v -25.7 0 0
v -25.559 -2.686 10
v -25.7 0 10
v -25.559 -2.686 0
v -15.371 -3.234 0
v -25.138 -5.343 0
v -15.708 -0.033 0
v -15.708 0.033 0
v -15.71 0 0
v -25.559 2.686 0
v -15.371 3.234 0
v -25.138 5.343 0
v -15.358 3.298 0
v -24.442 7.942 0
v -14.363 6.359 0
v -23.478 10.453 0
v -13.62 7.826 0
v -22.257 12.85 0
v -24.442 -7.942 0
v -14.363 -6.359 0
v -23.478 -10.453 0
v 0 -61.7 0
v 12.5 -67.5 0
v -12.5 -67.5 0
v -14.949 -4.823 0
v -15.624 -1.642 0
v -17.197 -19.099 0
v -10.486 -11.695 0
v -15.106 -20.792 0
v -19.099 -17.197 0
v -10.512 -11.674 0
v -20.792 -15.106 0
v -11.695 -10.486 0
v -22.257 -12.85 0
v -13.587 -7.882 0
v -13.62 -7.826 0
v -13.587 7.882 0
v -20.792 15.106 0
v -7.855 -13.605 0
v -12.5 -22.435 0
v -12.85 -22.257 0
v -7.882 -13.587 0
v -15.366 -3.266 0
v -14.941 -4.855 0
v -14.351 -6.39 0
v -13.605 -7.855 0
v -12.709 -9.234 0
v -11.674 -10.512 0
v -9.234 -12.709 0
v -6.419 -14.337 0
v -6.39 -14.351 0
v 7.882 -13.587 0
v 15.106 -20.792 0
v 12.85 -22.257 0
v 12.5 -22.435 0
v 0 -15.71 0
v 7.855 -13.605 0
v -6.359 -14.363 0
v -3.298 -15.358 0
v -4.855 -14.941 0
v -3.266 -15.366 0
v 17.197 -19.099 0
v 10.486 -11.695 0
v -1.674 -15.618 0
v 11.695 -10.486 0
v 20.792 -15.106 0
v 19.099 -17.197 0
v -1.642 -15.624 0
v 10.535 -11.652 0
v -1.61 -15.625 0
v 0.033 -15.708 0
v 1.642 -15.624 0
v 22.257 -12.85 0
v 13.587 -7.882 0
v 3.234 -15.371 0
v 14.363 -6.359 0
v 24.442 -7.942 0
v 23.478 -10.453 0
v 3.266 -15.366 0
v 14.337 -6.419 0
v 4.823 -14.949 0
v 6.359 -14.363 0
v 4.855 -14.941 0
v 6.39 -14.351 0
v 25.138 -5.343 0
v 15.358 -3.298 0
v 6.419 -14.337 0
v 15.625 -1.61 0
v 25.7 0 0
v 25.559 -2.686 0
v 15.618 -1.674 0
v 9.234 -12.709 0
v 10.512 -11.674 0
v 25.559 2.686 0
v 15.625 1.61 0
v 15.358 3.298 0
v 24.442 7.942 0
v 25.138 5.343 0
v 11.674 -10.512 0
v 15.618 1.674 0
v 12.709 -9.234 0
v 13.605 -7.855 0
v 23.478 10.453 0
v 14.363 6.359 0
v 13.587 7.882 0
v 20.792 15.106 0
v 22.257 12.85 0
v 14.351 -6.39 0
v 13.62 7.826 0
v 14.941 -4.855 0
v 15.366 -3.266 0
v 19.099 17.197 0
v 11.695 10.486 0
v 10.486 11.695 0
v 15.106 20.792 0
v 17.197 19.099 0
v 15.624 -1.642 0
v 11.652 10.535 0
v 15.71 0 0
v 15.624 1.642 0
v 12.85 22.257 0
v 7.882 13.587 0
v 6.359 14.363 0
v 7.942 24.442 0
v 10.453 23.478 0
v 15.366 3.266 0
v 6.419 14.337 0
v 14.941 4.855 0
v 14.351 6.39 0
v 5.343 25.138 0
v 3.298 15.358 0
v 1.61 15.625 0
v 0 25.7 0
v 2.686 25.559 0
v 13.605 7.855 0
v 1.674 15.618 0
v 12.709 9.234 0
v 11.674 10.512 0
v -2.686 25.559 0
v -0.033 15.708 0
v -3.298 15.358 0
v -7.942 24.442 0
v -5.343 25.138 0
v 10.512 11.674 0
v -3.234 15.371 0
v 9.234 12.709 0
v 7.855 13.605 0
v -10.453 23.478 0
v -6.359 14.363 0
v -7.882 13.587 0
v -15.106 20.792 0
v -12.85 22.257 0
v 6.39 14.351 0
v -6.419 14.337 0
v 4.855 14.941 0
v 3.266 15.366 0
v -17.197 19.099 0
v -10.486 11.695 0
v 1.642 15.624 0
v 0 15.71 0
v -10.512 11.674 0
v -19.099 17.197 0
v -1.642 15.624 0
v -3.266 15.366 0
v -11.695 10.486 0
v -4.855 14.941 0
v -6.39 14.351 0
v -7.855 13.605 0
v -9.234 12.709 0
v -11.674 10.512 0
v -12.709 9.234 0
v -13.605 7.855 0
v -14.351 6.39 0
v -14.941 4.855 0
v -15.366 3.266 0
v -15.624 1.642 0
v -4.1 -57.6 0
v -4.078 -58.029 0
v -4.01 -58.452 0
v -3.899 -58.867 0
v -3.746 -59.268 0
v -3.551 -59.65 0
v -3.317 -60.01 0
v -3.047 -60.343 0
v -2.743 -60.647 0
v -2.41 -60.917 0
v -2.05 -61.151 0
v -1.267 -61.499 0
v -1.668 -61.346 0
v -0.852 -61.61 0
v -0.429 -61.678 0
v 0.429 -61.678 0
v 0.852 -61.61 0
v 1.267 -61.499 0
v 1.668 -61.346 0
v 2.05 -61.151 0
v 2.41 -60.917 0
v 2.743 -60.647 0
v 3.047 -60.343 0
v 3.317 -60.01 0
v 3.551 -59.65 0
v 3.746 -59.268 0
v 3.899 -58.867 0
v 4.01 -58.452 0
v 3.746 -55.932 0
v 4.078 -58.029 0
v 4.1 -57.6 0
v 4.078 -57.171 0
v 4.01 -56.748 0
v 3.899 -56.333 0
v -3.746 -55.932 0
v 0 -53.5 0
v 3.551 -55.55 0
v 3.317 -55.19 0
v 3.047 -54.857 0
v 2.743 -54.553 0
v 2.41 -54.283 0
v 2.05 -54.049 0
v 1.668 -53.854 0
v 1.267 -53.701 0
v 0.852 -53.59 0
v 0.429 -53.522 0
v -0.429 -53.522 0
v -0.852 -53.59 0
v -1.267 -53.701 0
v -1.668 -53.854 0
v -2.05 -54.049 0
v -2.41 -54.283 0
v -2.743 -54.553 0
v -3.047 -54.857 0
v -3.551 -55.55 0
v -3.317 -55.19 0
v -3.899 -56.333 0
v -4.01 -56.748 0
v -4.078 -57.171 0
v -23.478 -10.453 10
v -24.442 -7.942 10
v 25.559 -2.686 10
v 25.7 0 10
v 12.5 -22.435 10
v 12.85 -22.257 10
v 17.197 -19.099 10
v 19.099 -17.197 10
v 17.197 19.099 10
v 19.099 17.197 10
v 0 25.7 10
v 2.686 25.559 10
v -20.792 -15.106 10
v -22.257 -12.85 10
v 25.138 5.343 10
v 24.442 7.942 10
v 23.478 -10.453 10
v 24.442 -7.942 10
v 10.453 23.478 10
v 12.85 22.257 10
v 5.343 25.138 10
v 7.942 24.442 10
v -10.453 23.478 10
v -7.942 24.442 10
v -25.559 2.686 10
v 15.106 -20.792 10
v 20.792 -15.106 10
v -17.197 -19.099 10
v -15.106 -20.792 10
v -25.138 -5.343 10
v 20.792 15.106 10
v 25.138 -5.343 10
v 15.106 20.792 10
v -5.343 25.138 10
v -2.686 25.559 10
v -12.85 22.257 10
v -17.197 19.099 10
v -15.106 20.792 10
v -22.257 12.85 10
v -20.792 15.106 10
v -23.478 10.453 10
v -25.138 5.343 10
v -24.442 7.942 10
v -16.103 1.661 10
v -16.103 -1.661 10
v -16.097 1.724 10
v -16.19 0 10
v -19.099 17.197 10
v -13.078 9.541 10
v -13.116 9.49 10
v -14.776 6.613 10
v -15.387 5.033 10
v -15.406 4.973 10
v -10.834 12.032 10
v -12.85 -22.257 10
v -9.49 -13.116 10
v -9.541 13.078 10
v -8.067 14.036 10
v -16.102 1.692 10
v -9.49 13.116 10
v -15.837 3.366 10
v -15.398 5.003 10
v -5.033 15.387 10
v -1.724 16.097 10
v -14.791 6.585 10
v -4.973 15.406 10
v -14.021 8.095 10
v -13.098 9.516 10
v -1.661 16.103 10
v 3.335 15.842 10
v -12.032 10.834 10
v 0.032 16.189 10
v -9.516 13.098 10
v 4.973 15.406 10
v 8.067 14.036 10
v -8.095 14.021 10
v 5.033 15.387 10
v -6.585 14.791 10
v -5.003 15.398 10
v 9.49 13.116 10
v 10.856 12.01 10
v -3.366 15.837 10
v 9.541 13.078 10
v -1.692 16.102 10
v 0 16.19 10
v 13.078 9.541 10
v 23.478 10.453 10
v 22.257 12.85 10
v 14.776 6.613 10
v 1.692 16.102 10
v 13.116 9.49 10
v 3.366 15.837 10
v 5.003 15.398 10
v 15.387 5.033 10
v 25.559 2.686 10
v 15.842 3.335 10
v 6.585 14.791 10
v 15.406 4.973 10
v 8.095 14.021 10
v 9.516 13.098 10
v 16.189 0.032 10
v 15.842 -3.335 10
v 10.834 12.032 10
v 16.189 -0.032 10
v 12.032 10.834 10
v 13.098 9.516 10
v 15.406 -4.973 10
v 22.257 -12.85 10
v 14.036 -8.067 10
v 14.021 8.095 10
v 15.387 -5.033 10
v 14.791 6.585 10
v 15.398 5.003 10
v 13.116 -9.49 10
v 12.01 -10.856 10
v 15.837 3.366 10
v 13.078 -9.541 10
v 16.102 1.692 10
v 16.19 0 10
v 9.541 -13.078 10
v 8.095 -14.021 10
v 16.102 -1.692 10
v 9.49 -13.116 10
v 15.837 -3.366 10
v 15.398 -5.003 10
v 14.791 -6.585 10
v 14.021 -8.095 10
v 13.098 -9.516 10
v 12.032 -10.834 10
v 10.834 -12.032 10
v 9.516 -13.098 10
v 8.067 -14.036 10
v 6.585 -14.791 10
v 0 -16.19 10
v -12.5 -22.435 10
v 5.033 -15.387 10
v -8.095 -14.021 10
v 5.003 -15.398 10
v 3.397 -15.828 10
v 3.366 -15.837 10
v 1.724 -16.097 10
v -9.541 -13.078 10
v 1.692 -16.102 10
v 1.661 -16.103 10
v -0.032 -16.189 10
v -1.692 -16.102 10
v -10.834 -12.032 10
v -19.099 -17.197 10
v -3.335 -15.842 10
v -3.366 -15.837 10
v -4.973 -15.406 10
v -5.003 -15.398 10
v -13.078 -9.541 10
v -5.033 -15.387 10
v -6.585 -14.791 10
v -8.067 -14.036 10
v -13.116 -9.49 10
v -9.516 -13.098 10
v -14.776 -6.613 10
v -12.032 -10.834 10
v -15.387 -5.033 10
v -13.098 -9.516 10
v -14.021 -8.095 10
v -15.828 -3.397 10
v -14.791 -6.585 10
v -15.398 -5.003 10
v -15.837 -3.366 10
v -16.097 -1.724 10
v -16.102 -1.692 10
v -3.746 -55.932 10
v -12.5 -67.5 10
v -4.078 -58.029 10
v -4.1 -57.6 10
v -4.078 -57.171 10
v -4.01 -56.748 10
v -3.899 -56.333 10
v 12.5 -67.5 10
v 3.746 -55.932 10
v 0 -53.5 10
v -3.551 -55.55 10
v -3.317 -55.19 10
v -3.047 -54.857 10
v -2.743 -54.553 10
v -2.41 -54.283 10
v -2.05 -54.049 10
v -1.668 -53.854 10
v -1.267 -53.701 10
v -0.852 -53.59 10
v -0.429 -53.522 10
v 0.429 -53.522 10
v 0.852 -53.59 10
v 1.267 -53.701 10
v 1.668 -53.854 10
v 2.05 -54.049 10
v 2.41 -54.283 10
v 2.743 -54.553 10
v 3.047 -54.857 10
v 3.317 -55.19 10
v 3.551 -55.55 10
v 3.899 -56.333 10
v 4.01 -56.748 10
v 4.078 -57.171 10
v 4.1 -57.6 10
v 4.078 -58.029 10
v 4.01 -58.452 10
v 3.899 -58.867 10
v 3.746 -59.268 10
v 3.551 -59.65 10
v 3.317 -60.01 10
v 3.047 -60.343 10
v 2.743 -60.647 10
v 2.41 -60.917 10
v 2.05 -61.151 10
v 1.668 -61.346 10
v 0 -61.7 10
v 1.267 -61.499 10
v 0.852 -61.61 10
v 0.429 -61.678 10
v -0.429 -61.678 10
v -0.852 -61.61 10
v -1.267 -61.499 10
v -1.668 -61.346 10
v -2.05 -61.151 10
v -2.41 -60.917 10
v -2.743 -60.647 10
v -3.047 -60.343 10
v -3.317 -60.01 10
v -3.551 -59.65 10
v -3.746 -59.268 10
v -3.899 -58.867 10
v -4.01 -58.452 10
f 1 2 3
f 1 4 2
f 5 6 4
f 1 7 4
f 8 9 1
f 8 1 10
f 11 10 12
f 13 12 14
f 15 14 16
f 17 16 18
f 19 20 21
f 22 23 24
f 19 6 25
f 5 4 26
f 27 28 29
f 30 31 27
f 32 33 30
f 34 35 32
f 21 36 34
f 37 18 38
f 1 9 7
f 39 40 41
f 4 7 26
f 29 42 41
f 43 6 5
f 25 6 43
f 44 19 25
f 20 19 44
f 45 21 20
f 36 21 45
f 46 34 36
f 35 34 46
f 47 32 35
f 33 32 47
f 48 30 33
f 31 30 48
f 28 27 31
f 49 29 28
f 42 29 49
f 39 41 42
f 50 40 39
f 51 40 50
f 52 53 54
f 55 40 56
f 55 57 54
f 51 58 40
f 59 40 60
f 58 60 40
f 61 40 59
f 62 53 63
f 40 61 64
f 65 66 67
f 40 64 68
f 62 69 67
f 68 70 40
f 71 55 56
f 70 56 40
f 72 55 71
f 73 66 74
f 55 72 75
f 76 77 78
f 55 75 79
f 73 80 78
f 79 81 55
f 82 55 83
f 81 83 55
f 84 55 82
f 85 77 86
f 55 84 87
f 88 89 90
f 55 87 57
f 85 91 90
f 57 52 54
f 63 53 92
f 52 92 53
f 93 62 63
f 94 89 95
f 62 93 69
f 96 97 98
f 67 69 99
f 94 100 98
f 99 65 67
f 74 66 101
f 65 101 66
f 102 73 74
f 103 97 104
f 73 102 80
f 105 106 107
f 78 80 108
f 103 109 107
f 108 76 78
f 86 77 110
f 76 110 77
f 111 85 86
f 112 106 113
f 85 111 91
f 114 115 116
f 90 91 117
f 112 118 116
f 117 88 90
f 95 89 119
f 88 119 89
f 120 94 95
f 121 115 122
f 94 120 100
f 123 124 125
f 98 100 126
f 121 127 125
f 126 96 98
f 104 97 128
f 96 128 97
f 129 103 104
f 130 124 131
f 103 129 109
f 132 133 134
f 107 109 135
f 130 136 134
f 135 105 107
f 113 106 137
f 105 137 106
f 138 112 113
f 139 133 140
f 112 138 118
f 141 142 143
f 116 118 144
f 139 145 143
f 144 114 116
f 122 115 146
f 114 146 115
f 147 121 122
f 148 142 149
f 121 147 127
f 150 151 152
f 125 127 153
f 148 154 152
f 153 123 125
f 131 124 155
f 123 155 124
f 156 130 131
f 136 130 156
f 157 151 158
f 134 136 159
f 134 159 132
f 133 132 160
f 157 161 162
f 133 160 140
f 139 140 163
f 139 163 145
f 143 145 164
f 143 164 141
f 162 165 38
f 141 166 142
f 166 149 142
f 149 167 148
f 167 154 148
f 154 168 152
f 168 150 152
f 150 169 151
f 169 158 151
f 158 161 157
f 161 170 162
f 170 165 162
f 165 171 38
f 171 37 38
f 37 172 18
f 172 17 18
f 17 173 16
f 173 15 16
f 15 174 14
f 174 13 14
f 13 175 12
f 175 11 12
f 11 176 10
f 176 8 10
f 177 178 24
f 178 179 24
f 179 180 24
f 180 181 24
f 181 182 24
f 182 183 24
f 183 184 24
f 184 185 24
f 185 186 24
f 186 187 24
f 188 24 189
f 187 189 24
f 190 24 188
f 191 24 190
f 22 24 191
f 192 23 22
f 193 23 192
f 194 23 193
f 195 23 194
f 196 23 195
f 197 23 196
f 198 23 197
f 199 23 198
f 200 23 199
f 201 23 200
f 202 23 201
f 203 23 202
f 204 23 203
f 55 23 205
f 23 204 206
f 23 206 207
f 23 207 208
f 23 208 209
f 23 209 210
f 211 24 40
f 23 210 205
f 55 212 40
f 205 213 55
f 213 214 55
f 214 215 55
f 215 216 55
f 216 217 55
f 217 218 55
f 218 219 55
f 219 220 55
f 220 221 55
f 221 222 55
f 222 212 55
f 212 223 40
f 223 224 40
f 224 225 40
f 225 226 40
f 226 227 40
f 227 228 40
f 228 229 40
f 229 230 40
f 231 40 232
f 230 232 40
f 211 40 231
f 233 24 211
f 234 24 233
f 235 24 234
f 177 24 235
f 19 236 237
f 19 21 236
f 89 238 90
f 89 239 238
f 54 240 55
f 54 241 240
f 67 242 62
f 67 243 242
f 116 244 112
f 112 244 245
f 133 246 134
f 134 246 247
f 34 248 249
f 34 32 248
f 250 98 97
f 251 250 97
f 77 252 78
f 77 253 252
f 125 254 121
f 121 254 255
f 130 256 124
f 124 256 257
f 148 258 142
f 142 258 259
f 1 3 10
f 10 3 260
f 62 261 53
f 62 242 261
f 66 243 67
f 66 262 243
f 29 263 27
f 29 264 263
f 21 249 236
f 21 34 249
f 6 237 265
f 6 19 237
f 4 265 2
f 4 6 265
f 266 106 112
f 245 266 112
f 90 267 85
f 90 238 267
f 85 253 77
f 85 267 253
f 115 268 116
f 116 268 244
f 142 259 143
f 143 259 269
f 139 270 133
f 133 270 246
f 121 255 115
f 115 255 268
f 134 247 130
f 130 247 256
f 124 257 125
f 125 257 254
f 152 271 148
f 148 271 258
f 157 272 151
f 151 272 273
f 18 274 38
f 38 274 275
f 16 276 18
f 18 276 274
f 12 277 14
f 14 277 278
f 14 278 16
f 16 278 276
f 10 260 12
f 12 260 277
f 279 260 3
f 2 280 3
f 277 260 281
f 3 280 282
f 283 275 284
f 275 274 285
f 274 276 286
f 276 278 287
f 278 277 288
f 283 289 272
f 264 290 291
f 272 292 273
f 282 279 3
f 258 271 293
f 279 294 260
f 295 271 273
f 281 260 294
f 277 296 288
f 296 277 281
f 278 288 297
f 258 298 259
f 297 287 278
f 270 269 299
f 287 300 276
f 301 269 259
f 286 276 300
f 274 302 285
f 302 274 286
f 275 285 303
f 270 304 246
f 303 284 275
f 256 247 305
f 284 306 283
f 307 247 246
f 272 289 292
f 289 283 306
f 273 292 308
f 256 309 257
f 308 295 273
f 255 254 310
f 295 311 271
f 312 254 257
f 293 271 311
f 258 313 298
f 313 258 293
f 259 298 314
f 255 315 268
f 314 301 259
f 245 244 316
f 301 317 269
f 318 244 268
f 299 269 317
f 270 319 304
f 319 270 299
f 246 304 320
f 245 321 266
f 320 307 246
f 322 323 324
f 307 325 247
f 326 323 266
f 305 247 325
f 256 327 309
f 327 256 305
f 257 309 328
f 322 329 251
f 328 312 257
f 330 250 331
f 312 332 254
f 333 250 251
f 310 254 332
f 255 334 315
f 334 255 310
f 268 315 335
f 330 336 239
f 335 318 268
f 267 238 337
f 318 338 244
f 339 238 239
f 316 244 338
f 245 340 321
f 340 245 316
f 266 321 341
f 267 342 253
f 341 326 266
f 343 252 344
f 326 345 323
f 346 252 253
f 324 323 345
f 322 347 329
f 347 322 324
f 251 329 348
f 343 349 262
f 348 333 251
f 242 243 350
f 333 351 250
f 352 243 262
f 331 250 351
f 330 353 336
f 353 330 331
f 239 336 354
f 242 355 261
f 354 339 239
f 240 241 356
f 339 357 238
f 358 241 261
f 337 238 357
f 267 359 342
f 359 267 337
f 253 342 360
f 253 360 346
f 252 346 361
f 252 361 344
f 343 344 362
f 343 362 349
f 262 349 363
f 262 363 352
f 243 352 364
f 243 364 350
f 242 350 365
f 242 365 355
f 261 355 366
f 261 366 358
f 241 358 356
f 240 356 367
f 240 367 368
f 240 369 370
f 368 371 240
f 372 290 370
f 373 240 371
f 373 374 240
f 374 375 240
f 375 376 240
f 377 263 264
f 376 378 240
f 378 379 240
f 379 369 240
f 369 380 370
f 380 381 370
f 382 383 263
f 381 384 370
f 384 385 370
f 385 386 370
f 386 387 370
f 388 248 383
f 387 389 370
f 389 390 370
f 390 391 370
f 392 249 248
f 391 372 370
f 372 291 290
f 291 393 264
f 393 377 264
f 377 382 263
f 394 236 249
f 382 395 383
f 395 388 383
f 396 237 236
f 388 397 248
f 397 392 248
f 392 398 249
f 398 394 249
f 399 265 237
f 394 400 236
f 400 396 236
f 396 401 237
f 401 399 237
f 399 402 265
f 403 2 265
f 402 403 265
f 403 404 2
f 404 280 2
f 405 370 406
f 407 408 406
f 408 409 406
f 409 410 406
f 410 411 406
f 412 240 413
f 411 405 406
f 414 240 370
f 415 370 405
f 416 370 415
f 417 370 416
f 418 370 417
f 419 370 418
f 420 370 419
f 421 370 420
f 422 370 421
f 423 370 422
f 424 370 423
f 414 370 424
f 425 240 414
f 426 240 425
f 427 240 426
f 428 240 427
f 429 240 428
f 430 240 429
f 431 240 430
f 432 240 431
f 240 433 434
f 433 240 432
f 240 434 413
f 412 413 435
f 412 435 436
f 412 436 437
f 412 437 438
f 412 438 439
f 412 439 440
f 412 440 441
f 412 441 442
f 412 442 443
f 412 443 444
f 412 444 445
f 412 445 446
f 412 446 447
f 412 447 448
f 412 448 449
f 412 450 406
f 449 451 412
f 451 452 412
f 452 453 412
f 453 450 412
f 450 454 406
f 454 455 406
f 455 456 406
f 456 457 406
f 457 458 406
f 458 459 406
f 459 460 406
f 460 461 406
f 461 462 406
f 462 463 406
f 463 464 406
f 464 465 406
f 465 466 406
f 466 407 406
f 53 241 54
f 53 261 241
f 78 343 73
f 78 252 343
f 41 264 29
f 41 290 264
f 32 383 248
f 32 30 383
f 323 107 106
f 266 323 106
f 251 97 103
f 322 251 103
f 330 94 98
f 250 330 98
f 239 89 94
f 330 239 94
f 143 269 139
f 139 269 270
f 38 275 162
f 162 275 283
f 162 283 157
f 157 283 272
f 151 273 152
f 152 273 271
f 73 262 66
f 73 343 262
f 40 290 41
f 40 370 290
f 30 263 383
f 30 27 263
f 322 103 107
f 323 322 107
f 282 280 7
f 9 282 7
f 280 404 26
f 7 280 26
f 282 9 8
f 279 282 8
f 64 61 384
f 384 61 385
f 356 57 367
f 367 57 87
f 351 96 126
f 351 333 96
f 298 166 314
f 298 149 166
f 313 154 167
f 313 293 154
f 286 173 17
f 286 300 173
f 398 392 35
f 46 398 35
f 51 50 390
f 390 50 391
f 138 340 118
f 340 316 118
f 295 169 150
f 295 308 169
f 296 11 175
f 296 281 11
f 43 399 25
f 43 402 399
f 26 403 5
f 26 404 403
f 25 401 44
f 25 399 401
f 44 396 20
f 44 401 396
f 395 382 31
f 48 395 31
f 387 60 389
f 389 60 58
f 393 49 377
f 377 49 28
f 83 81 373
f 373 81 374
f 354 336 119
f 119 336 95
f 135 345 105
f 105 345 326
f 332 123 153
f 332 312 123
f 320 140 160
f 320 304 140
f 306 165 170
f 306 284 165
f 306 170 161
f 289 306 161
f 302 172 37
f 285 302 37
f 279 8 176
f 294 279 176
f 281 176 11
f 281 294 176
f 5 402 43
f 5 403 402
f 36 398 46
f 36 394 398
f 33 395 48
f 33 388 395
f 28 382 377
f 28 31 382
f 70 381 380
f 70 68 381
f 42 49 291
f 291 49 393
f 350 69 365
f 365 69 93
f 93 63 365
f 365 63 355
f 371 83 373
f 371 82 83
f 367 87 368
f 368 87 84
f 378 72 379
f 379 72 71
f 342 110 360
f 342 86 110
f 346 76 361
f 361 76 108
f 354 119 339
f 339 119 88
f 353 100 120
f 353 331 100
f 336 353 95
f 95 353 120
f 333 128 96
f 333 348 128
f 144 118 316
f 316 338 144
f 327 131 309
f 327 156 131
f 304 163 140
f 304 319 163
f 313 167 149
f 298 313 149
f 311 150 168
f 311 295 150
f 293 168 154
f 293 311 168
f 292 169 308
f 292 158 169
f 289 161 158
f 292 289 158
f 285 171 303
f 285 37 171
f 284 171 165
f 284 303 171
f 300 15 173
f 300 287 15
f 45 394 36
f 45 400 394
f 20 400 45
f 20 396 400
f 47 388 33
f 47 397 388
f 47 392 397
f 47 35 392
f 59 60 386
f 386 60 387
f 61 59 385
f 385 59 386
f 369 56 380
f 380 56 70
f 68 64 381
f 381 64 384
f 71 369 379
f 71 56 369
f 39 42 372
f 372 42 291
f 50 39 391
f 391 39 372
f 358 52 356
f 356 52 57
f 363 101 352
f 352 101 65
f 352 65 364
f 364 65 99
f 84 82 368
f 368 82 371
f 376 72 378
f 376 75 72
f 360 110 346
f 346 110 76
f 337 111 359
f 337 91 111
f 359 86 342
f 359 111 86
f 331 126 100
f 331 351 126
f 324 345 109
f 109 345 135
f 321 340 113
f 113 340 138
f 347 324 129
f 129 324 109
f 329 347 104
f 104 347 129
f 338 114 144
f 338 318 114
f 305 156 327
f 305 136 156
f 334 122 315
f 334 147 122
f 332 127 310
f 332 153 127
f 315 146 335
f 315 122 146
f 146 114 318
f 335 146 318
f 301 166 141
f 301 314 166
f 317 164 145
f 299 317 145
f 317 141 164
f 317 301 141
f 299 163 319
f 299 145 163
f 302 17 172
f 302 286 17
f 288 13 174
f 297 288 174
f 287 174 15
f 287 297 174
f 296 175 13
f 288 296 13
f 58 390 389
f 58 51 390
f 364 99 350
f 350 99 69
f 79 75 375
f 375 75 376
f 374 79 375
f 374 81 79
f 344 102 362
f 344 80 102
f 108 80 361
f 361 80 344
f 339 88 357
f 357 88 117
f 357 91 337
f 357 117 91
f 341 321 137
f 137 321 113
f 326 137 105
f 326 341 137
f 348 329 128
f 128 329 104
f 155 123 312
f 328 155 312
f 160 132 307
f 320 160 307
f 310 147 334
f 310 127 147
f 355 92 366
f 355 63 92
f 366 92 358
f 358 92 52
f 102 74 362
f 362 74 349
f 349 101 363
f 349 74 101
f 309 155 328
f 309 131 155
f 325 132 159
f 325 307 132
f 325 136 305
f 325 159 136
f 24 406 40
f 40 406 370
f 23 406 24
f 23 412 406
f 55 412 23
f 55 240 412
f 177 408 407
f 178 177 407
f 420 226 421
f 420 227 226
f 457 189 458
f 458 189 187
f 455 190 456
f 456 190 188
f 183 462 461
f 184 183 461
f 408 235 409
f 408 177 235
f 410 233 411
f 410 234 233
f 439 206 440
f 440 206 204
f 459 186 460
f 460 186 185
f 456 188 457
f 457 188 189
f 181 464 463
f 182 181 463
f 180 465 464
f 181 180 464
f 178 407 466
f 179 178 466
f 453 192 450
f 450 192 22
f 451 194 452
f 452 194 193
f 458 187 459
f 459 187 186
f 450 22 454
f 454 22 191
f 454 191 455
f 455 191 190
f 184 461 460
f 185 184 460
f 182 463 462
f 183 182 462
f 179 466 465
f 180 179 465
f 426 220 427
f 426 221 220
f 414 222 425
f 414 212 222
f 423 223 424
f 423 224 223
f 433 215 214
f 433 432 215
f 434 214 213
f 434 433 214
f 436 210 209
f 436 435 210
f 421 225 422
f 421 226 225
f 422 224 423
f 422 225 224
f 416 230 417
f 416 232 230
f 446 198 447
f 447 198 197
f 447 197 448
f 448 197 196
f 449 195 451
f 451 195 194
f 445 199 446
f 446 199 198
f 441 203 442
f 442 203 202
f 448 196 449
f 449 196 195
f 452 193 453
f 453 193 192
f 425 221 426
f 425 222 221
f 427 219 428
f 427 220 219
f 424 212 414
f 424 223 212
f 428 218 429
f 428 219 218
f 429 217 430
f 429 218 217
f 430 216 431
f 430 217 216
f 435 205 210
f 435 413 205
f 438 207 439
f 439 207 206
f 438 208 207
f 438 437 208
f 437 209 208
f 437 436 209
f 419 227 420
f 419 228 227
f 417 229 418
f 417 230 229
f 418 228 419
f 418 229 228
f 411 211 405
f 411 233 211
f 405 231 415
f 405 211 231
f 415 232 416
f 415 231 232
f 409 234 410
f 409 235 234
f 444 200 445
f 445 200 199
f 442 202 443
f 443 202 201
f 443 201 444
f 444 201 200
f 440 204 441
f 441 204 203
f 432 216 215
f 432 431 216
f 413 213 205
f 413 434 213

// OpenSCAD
// file: bottle_holder.scad
// Holder for wine bottles
// License GNU AFFERO GENERAL PUBLIC LICENSE v3+
// Copyright 2014 Christian Ege


wineBottleBodyDiameter = 87;
wineBottleNeckDiameter1 = 31;
wineBottleNeckDiameter2 = 32;

clearance = 0.2;
holder_ring_x = 10;
holder_ring_y= 10;
holder_ring_z = 10;
holder_path_z = 10;
holder_path_x = 25;
holder_path_y = ((wineBottleBodyDiameter -wineBottleNeckDiameter2) /2.0)+20+2;
uholder_path_y = 25;

stand_x = 95;
stand_y = 120;
stand_z = 8;

threadedRodHole = 8.0+clearance;

module lower_ring() {
	difference() {
		cylinder(h = holder_ring_z, r=((wineBottleNeckDiameter1+2*holder_ring_y )/2.0)+clearance, $fn=60);
		translate([0,0,-clearance]) {
			cylinder(h = holder_ring_z+2*clearance, r1=(wineBottleNeckDiameter1/2.0)+clearance, r2=(wineBottleNeckDiameter2/2.0)+clearance, $fn=60);
		}
	}

}

module upper_ring() {
	difference() {
		cylinder(h = holder_ring_z, r=((wineBottleBodyDiameter+2*holder_ring_y )/2.0)+clearance, $fn=60);
		translate([0,0,-clearance]) {
			cylinder(h = holder_ring_z+2*clearance, r=(wineBottleBodyDiameter/2.0)+clearance, $fn=60);
		}
	}

}


module lower_path() {
	difference() {
		cube(size = [holder_path_x,holder_path_y,holder_path_z], center = true);
	}
}

module upper_path() {
		#cube(size = [holder_path_x,uholder_path_y,holder_path_z], center = true);
}


module lower_holder() {
	difference () {
		union () {
			lower_ring();
			translate([0,-((holder_path_y+wineBottleNeckDiameter2)/2.0)-2,holder_path_z /2.0]) {
				lower_path();
			}
		}
			drill_hole();

		}
}

module upper_holder() {
	difference () {
		union () {
			upper_ring();
			translate([0,-((uholder_path_y+wineBottleBodyDiameter)/2.0 +2 ),holder_path_z /2.0]) {
				upper_path();
			}
			translate([0,(wineBottleBodyDiameter)/2 +holder_ring_y+4 ,holder_ring_z/2 ])
				cube(size = [15,holder_ring_y+2*clearance,holder_ring_z], center = true);
		}
		drill_hole();
		translate([0,(wineBottleBodyDiameter+holder_ring_y)/2 +clearance ,holder_ring_z/2 + clearance ]) #cube(size = [5,holder_ring_y+20+2*clearance,holder_ring_z+2*clearance], center = true);

		translate([-50,(wineBottleBodyDiameter)/2 +holder_ring_y+4 ,holder_ring_z/2 + clearance ]) {
			rotate ([0,90,0])  cylinder(h=100+2*clearance ,r=3.5/2.0, $fn=60);
		}
		translate([+7.5-2.5,(wineBottleBodyDiameter)/2 +holder_ring_y+4 ,holder_ring_z/2 + clearance ])
			rotate ([0,90,0])  cylinder(h=100+2*clearance ,r=6.8/2.0, $fn=6);


		}
}


module drill_hole () {
		translate([0,-(wineBottleBodyDiameter/2+10+threadedRodHole/2) ,-(holder_path_z/2)]) {
			#cylinder(h=100+2*clearance ,r=threadedRodHole/2.0, $fn=60);
		}
	}
module stand () {
	difference () {
		union () {
			translate([0,-holder_path_y/2,0]) cube(size = [stand_x,stand_y,stand_z], center = true);
			translate([0,-(wineBottleBodyDiameter/2+10+threadedRodHole/2),0] ) cylinder(h=50 ,r2=threadedRodHole/2.0 +5, r1=threadedRodHole/2.0 +8, $fn=60);


		}
		drill_hole();
		translate( [0,-(wineBottleBodyDiameter/2+10+threadedRodHole/2),-(stand_z/2+clearance)]) #cylinder(h=7.5 ,r=14.7/2+clearance, $fn=6);

		for ( i = [-10	:1.0: 35] )
		{
			translate( [0,i,-(stand_z/2+clearance)]) #cylinder(h=stand_z+2*clearance ,r=25, $fn=50);
		}

	}
}

module triangle () {
	b = 15;
	h = 50;
	w = 5;
	rotate(a=[90,-90,0]) {
		linear_extrude(height = w, center = true, convexity = 10, twist = 0)
			polygon(points=[[0,0],[h,0],[0,b]], paths=[[0,1,2]]);
	}
}

module base () {

	translate([-((threadedRodHole/2.0 +5)-clearance),-(wineBottleBodyDiameter/2+10+threadedRodHole/2),0 ]) triangle();
	translate([+((threadedRodHole/2.0 +5)-clearance),-(wineBottleBodyDiameter/2+10+threadedRodHole/2),0 ])
		rotate([0,0,180])triangle();

	translate([0,-(wineBottleBodyDiameter/2+(10-threadedRodHole/2)),0 ])
		rotate([0,0,270])triangle();

	translate([0,-(wineBottleBodyDiameter/2+10+threadedRodHole+5),0 ])
		rotate([0,0,90])triangle();


	translate([0,-(wineBottleBodyDiameter/2+10+threadedRodHole/2) ,7.5-0.5 ])
	cylinder(h=0.1 ,r=14.5/2+clearance, $fn=10);

translate ([0,0,stand_z/2]) stand();
}

base();
//lower_holder();
//upper_holder();
//lower_path();
// main file
// Holder for wine bottles
// License GNU AFFERO GENERAL PUBLIC LICENSE v3+
// Copyright 2014 Christian Ege

use <bottle_holder.scad>

lower_holder();
